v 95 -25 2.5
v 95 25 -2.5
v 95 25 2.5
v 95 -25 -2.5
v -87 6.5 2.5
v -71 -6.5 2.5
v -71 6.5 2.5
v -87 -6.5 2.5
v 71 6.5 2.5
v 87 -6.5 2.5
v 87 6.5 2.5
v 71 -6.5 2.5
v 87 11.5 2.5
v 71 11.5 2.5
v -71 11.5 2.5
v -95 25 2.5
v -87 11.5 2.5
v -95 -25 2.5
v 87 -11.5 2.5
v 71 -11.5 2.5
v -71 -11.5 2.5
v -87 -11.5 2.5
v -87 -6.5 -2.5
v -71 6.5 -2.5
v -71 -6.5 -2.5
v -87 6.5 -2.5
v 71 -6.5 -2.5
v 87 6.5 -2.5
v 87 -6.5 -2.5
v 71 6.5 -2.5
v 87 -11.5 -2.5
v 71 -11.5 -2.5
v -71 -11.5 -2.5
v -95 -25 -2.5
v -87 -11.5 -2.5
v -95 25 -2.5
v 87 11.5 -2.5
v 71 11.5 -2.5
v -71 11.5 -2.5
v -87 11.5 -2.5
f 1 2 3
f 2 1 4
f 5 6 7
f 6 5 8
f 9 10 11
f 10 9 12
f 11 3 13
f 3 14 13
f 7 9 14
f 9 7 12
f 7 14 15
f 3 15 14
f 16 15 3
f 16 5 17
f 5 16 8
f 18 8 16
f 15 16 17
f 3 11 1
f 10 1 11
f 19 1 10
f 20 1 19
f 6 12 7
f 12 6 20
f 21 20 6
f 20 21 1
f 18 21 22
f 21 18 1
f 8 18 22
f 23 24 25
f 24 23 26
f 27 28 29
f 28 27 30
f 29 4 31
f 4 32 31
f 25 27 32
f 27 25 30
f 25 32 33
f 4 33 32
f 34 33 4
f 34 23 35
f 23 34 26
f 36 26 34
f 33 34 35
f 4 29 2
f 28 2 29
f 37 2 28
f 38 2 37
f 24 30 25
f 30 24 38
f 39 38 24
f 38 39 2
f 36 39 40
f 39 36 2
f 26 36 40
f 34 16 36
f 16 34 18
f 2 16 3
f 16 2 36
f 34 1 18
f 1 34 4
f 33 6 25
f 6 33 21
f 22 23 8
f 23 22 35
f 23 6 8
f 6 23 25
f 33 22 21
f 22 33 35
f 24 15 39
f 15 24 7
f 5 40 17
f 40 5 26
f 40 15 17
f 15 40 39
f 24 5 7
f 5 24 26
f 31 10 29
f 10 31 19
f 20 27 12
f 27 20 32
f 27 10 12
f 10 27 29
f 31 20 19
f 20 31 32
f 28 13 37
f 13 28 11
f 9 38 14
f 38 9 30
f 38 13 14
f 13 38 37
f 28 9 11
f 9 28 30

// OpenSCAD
// ========================================
// a 190 x 50 x 5 mm plate with four 16 x 5 mm slots
// NeuroCAD canonical IR; dimensions are millimetres
// ========================================
$fn = 48;

difference() {
  cube(size=[190, 50, 5], center=true);
  translate([-79, -9, 0]) {
    cube(size=[16, 5, 7], center=true);
  }
  translate([-79, 9, 0]) {
    cube(size=[16, 5, 7], center=true);
  }
  translate([79, -9, 0]) {
    cube(size=[16, 5, 7], center=true);
  }
  translate([79, 9, 0]) {
    cube(size=[16, 5, 7], center=true);
  }
}
